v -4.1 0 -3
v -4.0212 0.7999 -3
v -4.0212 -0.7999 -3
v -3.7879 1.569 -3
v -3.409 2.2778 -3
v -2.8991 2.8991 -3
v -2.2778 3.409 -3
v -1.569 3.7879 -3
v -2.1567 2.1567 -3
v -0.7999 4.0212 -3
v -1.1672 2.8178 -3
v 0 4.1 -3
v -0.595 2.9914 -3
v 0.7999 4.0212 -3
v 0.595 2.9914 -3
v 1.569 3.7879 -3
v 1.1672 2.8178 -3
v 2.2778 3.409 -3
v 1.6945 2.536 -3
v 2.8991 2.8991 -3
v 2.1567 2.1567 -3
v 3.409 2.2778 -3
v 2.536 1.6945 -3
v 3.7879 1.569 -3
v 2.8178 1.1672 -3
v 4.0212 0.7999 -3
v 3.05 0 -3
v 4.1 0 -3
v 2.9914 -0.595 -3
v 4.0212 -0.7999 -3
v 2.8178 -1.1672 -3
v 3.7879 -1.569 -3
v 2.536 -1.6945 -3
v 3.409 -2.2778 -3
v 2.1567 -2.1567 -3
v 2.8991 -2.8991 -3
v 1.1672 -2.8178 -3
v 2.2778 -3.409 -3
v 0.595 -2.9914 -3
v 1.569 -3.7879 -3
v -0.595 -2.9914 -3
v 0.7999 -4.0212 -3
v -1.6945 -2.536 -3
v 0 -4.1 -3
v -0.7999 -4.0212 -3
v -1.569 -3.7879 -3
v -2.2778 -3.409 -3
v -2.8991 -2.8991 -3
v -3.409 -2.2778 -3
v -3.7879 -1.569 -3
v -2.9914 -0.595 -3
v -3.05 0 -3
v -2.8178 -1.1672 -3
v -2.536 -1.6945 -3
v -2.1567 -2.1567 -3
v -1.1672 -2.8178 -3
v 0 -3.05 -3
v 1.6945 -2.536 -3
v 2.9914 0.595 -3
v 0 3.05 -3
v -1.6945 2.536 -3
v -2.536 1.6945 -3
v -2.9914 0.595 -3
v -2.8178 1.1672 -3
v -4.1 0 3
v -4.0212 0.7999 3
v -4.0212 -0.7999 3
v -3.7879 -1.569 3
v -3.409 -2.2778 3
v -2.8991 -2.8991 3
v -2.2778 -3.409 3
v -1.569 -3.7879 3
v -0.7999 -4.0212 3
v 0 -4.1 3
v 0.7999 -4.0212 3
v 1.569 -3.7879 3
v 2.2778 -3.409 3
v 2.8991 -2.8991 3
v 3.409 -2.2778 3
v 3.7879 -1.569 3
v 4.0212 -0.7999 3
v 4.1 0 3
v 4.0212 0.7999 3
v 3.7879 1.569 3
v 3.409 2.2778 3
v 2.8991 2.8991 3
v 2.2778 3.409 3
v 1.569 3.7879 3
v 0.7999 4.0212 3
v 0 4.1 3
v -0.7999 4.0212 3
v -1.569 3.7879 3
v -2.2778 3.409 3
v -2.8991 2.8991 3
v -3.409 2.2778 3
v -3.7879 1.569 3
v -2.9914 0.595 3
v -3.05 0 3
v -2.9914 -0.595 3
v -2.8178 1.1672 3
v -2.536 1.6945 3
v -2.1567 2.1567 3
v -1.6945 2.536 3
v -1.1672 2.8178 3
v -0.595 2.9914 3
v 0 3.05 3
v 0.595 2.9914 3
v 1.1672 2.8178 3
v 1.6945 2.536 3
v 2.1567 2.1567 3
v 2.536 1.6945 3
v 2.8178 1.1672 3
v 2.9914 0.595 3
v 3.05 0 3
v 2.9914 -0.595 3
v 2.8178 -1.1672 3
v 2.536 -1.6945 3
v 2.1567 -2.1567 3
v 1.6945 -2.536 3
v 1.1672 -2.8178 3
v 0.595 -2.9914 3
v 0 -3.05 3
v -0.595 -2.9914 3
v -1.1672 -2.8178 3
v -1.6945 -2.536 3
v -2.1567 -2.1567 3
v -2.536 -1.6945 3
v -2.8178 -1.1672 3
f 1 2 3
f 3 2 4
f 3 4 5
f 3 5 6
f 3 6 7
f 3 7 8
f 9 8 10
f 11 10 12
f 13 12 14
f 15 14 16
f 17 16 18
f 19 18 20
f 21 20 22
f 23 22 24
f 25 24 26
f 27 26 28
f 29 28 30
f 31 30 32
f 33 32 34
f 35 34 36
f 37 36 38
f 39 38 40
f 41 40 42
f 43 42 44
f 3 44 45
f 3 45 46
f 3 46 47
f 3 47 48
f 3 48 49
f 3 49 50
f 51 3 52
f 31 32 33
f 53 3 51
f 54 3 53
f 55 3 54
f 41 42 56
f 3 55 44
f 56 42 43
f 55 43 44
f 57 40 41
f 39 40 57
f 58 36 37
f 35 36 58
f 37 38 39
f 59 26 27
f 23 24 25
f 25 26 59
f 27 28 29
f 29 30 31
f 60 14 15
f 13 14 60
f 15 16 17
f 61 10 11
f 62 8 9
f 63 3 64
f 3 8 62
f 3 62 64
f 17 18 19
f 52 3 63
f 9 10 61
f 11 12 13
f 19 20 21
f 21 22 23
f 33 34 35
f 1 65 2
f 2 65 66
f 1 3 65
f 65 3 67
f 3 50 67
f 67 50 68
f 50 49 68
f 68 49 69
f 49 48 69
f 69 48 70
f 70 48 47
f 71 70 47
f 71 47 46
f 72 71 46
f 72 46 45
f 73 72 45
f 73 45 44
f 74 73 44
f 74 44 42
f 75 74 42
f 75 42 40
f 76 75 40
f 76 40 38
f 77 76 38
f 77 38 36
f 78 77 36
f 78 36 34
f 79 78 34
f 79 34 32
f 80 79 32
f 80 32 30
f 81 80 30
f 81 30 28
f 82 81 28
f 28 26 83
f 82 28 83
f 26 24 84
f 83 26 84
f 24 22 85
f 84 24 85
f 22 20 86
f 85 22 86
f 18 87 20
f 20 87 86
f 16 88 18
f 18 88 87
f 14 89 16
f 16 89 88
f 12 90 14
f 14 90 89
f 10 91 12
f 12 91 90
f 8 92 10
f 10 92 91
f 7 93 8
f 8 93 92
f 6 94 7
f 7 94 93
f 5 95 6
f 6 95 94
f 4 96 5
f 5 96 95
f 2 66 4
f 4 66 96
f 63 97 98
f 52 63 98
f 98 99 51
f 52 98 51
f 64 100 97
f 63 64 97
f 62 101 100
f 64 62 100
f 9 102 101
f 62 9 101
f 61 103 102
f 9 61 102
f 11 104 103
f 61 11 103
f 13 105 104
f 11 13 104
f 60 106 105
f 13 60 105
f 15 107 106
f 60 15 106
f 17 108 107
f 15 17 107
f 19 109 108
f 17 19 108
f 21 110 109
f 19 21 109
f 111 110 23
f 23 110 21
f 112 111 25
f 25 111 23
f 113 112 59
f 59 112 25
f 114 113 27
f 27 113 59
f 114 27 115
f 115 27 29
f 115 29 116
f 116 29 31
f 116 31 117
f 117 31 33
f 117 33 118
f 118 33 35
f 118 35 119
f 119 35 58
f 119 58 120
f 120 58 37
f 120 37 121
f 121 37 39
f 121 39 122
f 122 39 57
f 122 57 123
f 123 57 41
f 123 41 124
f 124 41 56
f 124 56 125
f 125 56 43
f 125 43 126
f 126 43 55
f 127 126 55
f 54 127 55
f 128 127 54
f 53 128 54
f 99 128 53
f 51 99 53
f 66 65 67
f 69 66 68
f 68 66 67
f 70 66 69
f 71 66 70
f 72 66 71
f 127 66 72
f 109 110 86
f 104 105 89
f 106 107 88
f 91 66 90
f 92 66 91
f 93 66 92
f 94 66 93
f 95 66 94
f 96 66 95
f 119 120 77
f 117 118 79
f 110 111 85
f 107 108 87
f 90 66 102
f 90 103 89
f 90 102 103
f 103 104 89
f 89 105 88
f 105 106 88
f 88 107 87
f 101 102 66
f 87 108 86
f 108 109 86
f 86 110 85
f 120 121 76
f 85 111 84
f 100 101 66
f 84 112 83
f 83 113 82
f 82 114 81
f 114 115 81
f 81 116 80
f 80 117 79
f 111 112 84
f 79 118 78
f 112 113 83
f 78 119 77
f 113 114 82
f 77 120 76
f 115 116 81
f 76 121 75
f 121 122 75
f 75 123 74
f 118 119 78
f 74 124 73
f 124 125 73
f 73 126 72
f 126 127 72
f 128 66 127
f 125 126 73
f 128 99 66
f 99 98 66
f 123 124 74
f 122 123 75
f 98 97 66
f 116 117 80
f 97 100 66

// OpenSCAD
module shim()
{
	difference()
	{

		cylinder(r=8.2/2,h=6,center=true,$fn=32);
		cylinder(r=6.1/2,h=7,center=true,$fn=32);
	}
}

shim();
